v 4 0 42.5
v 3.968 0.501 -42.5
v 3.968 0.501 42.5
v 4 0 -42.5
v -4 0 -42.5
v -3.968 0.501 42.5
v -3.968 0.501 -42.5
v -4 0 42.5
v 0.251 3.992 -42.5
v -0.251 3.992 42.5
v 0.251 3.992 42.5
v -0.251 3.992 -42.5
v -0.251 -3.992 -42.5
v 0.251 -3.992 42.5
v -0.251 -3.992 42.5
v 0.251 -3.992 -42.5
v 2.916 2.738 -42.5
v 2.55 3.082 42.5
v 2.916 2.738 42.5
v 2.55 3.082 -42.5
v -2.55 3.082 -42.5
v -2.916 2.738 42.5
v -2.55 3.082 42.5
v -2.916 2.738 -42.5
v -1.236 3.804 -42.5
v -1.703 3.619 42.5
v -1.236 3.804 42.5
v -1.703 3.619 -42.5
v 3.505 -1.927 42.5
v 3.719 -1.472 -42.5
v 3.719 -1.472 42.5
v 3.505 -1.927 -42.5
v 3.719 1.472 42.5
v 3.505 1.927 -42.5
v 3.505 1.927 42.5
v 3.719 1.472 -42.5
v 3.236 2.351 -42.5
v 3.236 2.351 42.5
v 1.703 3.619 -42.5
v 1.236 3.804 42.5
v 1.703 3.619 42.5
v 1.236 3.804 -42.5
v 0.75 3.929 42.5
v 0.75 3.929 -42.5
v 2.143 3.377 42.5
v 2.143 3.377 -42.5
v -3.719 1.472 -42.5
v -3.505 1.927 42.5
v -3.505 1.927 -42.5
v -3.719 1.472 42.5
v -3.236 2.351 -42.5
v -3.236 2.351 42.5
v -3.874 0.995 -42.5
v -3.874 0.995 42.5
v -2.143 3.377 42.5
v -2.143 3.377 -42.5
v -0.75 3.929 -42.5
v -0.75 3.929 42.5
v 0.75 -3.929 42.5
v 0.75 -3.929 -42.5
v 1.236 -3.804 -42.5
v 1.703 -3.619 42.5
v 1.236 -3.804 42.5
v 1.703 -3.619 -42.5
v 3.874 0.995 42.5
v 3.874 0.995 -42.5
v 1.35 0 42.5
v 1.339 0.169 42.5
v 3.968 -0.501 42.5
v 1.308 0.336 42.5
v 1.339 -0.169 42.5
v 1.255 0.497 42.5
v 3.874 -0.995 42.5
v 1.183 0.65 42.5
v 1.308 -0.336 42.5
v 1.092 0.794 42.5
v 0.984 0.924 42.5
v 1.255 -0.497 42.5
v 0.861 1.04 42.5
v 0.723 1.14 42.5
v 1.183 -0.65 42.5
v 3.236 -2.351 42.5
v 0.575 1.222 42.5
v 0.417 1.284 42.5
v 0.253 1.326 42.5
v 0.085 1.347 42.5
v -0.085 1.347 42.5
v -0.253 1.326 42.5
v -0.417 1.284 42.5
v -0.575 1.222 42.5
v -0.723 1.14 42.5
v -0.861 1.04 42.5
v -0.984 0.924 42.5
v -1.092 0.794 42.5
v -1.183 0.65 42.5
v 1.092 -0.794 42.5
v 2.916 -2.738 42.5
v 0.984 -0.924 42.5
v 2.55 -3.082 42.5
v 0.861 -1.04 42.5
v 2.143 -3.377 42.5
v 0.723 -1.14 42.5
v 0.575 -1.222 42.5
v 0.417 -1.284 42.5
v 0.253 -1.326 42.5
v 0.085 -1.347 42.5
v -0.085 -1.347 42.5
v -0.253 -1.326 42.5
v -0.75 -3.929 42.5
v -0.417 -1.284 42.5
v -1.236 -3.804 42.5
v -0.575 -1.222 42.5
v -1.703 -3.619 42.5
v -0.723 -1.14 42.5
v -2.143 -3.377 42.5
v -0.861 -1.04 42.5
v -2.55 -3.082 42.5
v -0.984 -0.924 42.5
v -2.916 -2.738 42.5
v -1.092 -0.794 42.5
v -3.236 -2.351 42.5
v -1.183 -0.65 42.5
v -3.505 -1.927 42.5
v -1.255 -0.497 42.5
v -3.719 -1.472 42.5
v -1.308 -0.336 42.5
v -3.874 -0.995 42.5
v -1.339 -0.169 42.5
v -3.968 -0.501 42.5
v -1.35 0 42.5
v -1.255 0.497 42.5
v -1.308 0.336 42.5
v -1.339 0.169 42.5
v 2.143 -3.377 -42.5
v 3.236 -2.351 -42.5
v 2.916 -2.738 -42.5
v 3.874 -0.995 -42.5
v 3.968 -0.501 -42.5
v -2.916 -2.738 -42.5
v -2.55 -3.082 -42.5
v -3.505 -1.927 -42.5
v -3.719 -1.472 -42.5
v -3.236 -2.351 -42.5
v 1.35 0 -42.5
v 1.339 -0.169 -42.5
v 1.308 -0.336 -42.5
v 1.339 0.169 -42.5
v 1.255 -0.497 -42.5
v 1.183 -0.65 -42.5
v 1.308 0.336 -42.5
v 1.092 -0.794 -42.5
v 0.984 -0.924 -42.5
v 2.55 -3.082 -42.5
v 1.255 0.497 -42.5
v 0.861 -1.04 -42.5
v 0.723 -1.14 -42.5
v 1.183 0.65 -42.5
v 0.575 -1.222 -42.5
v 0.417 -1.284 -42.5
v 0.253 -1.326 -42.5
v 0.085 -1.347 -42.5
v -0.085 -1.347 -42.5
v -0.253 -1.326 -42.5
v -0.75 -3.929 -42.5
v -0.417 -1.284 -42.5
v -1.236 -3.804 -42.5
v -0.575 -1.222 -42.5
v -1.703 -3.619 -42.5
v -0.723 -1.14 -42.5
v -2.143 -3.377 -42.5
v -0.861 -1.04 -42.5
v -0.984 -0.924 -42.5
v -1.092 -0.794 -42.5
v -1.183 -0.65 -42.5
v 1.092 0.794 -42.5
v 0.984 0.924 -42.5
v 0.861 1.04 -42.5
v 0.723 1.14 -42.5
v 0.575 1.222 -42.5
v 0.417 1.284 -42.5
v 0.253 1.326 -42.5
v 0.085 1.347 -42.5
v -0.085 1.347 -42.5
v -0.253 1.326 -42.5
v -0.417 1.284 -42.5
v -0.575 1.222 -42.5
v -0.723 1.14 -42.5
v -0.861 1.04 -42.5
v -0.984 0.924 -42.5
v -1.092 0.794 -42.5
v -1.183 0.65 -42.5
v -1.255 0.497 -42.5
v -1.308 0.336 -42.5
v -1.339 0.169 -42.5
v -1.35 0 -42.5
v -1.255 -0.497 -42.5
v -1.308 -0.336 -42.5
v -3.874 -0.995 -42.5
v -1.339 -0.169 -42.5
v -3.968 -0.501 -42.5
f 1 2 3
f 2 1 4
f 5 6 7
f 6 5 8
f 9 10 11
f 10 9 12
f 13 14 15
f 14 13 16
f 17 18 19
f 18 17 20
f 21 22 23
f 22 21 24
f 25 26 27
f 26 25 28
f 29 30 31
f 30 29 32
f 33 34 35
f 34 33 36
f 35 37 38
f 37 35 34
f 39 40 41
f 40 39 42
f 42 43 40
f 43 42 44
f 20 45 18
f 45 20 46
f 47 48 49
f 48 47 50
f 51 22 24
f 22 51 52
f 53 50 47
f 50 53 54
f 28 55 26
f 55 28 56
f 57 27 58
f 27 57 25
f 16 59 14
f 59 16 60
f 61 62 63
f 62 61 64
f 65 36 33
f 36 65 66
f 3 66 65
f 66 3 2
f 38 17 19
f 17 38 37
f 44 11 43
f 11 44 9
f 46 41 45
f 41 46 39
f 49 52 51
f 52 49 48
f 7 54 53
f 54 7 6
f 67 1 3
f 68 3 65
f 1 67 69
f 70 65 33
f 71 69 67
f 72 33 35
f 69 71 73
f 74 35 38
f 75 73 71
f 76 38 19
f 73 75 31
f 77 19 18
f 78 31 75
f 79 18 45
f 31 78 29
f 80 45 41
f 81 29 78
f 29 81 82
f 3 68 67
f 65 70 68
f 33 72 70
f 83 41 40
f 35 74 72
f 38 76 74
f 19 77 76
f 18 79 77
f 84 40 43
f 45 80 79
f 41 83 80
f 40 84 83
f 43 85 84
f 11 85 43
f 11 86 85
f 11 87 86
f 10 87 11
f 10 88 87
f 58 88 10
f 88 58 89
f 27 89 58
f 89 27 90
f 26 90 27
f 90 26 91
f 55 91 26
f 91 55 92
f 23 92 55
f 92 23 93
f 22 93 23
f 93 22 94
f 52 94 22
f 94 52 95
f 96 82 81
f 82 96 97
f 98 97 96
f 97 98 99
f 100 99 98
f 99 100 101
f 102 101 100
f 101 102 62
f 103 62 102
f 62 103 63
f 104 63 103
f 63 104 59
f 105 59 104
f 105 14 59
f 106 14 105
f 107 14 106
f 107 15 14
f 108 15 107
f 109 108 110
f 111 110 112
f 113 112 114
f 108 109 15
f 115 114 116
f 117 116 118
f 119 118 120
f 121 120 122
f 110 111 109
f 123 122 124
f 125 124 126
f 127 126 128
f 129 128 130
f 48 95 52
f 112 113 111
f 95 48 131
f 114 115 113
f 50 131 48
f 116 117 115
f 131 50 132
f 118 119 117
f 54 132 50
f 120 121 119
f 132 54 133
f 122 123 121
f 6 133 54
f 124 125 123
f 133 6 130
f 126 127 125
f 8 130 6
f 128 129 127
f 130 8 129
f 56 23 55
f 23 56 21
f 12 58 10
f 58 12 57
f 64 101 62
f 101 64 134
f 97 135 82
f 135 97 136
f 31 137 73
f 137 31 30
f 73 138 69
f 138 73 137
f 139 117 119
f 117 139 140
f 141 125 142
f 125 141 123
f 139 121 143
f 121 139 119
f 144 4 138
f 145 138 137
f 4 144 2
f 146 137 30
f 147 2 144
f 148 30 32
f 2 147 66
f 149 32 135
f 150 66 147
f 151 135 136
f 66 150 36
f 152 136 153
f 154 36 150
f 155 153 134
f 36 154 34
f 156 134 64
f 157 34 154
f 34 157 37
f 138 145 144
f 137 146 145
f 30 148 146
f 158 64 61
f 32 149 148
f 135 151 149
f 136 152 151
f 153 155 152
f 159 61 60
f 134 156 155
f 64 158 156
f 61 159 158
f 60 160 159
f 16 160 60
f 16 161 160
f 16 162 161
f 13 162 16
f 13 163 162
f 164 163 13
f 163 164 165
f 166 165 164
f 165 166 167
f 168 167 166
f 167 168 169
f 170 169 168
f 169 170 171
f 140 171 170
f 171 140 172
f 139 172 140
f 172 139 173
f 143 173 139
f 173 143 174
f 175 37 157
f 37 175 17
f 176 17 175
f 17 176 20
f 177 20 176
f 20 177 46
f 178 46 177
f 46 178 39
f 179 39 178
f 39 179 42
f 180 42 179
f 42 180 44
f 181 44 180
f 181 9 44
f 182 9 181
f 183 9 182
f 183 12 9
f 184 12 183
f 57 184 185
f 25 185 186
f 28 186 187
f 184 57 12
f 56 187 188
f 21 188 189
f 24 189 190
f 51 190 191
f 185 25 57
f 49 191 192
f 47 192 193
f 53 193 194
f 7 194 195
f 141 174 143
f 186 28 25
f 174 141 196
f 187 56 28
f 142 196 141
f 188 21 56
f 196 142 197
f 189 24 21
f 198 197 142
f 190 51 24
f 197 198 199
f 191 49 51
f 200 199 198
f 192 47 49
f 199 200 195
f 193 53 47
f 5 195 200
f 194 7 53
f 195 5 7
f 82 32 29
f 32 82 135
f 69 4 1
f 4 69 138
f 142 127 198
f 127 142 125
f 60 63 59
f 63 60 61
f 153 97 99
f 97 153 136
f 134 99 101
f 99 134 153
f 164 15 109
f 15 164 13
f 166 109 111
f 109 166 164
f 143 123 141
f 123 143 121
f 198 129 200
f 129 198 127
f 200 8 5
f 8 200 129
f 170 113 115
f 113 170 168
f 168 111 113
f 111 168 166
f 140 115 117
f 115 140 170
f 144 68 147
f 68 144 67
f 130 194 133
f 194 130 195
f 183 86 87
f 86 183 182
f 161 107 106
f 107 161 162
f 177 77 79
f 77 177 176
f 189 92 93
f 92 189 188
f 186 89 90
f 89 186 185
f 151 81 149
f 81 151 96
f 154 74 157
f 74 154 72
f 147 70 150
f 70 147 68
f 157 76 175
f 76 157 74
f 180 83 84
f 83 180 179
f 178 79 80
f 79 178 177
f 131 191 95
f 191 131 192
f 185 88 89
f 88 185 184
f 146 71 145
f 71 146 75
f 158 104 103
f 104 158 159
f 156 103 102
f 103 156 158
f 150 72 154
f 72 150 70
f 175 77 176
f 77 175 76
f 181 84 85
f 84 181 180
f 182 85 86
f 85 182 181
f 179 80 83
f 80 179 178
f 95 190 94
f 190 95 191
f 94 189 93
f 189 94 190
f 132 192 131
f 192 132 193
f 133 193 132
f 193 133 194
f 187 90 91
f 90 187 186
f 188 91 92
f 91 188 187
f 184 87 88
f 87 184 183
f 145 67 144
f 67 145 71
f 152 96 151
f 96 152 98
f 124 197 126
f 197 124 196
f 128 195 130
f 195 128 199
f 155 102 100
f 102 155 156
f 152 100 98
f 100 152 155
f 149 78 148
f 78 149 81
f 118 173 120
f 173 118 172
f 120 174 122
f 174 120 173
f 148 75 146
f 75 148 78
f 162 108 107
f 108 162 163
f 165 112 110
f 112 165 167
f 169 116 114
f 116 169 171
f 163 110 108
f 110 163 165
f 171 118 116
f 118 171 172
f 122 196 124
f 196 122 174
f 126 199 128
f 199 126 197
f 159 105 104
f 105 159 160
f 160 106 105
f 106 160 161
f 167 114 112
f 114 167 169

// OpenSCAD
$fn = 50;


difference() {
	union() {
		translate(v = [0, 0, -42.5000000000]) {
			cylinder(h = 85, r = 4.0000000000);
		}
	}
	union() {
		translate(v = [0, 0, -100.0000000000]) {
			cylinder(h = 200, r = 1.3500000000);
		}
	}
}
